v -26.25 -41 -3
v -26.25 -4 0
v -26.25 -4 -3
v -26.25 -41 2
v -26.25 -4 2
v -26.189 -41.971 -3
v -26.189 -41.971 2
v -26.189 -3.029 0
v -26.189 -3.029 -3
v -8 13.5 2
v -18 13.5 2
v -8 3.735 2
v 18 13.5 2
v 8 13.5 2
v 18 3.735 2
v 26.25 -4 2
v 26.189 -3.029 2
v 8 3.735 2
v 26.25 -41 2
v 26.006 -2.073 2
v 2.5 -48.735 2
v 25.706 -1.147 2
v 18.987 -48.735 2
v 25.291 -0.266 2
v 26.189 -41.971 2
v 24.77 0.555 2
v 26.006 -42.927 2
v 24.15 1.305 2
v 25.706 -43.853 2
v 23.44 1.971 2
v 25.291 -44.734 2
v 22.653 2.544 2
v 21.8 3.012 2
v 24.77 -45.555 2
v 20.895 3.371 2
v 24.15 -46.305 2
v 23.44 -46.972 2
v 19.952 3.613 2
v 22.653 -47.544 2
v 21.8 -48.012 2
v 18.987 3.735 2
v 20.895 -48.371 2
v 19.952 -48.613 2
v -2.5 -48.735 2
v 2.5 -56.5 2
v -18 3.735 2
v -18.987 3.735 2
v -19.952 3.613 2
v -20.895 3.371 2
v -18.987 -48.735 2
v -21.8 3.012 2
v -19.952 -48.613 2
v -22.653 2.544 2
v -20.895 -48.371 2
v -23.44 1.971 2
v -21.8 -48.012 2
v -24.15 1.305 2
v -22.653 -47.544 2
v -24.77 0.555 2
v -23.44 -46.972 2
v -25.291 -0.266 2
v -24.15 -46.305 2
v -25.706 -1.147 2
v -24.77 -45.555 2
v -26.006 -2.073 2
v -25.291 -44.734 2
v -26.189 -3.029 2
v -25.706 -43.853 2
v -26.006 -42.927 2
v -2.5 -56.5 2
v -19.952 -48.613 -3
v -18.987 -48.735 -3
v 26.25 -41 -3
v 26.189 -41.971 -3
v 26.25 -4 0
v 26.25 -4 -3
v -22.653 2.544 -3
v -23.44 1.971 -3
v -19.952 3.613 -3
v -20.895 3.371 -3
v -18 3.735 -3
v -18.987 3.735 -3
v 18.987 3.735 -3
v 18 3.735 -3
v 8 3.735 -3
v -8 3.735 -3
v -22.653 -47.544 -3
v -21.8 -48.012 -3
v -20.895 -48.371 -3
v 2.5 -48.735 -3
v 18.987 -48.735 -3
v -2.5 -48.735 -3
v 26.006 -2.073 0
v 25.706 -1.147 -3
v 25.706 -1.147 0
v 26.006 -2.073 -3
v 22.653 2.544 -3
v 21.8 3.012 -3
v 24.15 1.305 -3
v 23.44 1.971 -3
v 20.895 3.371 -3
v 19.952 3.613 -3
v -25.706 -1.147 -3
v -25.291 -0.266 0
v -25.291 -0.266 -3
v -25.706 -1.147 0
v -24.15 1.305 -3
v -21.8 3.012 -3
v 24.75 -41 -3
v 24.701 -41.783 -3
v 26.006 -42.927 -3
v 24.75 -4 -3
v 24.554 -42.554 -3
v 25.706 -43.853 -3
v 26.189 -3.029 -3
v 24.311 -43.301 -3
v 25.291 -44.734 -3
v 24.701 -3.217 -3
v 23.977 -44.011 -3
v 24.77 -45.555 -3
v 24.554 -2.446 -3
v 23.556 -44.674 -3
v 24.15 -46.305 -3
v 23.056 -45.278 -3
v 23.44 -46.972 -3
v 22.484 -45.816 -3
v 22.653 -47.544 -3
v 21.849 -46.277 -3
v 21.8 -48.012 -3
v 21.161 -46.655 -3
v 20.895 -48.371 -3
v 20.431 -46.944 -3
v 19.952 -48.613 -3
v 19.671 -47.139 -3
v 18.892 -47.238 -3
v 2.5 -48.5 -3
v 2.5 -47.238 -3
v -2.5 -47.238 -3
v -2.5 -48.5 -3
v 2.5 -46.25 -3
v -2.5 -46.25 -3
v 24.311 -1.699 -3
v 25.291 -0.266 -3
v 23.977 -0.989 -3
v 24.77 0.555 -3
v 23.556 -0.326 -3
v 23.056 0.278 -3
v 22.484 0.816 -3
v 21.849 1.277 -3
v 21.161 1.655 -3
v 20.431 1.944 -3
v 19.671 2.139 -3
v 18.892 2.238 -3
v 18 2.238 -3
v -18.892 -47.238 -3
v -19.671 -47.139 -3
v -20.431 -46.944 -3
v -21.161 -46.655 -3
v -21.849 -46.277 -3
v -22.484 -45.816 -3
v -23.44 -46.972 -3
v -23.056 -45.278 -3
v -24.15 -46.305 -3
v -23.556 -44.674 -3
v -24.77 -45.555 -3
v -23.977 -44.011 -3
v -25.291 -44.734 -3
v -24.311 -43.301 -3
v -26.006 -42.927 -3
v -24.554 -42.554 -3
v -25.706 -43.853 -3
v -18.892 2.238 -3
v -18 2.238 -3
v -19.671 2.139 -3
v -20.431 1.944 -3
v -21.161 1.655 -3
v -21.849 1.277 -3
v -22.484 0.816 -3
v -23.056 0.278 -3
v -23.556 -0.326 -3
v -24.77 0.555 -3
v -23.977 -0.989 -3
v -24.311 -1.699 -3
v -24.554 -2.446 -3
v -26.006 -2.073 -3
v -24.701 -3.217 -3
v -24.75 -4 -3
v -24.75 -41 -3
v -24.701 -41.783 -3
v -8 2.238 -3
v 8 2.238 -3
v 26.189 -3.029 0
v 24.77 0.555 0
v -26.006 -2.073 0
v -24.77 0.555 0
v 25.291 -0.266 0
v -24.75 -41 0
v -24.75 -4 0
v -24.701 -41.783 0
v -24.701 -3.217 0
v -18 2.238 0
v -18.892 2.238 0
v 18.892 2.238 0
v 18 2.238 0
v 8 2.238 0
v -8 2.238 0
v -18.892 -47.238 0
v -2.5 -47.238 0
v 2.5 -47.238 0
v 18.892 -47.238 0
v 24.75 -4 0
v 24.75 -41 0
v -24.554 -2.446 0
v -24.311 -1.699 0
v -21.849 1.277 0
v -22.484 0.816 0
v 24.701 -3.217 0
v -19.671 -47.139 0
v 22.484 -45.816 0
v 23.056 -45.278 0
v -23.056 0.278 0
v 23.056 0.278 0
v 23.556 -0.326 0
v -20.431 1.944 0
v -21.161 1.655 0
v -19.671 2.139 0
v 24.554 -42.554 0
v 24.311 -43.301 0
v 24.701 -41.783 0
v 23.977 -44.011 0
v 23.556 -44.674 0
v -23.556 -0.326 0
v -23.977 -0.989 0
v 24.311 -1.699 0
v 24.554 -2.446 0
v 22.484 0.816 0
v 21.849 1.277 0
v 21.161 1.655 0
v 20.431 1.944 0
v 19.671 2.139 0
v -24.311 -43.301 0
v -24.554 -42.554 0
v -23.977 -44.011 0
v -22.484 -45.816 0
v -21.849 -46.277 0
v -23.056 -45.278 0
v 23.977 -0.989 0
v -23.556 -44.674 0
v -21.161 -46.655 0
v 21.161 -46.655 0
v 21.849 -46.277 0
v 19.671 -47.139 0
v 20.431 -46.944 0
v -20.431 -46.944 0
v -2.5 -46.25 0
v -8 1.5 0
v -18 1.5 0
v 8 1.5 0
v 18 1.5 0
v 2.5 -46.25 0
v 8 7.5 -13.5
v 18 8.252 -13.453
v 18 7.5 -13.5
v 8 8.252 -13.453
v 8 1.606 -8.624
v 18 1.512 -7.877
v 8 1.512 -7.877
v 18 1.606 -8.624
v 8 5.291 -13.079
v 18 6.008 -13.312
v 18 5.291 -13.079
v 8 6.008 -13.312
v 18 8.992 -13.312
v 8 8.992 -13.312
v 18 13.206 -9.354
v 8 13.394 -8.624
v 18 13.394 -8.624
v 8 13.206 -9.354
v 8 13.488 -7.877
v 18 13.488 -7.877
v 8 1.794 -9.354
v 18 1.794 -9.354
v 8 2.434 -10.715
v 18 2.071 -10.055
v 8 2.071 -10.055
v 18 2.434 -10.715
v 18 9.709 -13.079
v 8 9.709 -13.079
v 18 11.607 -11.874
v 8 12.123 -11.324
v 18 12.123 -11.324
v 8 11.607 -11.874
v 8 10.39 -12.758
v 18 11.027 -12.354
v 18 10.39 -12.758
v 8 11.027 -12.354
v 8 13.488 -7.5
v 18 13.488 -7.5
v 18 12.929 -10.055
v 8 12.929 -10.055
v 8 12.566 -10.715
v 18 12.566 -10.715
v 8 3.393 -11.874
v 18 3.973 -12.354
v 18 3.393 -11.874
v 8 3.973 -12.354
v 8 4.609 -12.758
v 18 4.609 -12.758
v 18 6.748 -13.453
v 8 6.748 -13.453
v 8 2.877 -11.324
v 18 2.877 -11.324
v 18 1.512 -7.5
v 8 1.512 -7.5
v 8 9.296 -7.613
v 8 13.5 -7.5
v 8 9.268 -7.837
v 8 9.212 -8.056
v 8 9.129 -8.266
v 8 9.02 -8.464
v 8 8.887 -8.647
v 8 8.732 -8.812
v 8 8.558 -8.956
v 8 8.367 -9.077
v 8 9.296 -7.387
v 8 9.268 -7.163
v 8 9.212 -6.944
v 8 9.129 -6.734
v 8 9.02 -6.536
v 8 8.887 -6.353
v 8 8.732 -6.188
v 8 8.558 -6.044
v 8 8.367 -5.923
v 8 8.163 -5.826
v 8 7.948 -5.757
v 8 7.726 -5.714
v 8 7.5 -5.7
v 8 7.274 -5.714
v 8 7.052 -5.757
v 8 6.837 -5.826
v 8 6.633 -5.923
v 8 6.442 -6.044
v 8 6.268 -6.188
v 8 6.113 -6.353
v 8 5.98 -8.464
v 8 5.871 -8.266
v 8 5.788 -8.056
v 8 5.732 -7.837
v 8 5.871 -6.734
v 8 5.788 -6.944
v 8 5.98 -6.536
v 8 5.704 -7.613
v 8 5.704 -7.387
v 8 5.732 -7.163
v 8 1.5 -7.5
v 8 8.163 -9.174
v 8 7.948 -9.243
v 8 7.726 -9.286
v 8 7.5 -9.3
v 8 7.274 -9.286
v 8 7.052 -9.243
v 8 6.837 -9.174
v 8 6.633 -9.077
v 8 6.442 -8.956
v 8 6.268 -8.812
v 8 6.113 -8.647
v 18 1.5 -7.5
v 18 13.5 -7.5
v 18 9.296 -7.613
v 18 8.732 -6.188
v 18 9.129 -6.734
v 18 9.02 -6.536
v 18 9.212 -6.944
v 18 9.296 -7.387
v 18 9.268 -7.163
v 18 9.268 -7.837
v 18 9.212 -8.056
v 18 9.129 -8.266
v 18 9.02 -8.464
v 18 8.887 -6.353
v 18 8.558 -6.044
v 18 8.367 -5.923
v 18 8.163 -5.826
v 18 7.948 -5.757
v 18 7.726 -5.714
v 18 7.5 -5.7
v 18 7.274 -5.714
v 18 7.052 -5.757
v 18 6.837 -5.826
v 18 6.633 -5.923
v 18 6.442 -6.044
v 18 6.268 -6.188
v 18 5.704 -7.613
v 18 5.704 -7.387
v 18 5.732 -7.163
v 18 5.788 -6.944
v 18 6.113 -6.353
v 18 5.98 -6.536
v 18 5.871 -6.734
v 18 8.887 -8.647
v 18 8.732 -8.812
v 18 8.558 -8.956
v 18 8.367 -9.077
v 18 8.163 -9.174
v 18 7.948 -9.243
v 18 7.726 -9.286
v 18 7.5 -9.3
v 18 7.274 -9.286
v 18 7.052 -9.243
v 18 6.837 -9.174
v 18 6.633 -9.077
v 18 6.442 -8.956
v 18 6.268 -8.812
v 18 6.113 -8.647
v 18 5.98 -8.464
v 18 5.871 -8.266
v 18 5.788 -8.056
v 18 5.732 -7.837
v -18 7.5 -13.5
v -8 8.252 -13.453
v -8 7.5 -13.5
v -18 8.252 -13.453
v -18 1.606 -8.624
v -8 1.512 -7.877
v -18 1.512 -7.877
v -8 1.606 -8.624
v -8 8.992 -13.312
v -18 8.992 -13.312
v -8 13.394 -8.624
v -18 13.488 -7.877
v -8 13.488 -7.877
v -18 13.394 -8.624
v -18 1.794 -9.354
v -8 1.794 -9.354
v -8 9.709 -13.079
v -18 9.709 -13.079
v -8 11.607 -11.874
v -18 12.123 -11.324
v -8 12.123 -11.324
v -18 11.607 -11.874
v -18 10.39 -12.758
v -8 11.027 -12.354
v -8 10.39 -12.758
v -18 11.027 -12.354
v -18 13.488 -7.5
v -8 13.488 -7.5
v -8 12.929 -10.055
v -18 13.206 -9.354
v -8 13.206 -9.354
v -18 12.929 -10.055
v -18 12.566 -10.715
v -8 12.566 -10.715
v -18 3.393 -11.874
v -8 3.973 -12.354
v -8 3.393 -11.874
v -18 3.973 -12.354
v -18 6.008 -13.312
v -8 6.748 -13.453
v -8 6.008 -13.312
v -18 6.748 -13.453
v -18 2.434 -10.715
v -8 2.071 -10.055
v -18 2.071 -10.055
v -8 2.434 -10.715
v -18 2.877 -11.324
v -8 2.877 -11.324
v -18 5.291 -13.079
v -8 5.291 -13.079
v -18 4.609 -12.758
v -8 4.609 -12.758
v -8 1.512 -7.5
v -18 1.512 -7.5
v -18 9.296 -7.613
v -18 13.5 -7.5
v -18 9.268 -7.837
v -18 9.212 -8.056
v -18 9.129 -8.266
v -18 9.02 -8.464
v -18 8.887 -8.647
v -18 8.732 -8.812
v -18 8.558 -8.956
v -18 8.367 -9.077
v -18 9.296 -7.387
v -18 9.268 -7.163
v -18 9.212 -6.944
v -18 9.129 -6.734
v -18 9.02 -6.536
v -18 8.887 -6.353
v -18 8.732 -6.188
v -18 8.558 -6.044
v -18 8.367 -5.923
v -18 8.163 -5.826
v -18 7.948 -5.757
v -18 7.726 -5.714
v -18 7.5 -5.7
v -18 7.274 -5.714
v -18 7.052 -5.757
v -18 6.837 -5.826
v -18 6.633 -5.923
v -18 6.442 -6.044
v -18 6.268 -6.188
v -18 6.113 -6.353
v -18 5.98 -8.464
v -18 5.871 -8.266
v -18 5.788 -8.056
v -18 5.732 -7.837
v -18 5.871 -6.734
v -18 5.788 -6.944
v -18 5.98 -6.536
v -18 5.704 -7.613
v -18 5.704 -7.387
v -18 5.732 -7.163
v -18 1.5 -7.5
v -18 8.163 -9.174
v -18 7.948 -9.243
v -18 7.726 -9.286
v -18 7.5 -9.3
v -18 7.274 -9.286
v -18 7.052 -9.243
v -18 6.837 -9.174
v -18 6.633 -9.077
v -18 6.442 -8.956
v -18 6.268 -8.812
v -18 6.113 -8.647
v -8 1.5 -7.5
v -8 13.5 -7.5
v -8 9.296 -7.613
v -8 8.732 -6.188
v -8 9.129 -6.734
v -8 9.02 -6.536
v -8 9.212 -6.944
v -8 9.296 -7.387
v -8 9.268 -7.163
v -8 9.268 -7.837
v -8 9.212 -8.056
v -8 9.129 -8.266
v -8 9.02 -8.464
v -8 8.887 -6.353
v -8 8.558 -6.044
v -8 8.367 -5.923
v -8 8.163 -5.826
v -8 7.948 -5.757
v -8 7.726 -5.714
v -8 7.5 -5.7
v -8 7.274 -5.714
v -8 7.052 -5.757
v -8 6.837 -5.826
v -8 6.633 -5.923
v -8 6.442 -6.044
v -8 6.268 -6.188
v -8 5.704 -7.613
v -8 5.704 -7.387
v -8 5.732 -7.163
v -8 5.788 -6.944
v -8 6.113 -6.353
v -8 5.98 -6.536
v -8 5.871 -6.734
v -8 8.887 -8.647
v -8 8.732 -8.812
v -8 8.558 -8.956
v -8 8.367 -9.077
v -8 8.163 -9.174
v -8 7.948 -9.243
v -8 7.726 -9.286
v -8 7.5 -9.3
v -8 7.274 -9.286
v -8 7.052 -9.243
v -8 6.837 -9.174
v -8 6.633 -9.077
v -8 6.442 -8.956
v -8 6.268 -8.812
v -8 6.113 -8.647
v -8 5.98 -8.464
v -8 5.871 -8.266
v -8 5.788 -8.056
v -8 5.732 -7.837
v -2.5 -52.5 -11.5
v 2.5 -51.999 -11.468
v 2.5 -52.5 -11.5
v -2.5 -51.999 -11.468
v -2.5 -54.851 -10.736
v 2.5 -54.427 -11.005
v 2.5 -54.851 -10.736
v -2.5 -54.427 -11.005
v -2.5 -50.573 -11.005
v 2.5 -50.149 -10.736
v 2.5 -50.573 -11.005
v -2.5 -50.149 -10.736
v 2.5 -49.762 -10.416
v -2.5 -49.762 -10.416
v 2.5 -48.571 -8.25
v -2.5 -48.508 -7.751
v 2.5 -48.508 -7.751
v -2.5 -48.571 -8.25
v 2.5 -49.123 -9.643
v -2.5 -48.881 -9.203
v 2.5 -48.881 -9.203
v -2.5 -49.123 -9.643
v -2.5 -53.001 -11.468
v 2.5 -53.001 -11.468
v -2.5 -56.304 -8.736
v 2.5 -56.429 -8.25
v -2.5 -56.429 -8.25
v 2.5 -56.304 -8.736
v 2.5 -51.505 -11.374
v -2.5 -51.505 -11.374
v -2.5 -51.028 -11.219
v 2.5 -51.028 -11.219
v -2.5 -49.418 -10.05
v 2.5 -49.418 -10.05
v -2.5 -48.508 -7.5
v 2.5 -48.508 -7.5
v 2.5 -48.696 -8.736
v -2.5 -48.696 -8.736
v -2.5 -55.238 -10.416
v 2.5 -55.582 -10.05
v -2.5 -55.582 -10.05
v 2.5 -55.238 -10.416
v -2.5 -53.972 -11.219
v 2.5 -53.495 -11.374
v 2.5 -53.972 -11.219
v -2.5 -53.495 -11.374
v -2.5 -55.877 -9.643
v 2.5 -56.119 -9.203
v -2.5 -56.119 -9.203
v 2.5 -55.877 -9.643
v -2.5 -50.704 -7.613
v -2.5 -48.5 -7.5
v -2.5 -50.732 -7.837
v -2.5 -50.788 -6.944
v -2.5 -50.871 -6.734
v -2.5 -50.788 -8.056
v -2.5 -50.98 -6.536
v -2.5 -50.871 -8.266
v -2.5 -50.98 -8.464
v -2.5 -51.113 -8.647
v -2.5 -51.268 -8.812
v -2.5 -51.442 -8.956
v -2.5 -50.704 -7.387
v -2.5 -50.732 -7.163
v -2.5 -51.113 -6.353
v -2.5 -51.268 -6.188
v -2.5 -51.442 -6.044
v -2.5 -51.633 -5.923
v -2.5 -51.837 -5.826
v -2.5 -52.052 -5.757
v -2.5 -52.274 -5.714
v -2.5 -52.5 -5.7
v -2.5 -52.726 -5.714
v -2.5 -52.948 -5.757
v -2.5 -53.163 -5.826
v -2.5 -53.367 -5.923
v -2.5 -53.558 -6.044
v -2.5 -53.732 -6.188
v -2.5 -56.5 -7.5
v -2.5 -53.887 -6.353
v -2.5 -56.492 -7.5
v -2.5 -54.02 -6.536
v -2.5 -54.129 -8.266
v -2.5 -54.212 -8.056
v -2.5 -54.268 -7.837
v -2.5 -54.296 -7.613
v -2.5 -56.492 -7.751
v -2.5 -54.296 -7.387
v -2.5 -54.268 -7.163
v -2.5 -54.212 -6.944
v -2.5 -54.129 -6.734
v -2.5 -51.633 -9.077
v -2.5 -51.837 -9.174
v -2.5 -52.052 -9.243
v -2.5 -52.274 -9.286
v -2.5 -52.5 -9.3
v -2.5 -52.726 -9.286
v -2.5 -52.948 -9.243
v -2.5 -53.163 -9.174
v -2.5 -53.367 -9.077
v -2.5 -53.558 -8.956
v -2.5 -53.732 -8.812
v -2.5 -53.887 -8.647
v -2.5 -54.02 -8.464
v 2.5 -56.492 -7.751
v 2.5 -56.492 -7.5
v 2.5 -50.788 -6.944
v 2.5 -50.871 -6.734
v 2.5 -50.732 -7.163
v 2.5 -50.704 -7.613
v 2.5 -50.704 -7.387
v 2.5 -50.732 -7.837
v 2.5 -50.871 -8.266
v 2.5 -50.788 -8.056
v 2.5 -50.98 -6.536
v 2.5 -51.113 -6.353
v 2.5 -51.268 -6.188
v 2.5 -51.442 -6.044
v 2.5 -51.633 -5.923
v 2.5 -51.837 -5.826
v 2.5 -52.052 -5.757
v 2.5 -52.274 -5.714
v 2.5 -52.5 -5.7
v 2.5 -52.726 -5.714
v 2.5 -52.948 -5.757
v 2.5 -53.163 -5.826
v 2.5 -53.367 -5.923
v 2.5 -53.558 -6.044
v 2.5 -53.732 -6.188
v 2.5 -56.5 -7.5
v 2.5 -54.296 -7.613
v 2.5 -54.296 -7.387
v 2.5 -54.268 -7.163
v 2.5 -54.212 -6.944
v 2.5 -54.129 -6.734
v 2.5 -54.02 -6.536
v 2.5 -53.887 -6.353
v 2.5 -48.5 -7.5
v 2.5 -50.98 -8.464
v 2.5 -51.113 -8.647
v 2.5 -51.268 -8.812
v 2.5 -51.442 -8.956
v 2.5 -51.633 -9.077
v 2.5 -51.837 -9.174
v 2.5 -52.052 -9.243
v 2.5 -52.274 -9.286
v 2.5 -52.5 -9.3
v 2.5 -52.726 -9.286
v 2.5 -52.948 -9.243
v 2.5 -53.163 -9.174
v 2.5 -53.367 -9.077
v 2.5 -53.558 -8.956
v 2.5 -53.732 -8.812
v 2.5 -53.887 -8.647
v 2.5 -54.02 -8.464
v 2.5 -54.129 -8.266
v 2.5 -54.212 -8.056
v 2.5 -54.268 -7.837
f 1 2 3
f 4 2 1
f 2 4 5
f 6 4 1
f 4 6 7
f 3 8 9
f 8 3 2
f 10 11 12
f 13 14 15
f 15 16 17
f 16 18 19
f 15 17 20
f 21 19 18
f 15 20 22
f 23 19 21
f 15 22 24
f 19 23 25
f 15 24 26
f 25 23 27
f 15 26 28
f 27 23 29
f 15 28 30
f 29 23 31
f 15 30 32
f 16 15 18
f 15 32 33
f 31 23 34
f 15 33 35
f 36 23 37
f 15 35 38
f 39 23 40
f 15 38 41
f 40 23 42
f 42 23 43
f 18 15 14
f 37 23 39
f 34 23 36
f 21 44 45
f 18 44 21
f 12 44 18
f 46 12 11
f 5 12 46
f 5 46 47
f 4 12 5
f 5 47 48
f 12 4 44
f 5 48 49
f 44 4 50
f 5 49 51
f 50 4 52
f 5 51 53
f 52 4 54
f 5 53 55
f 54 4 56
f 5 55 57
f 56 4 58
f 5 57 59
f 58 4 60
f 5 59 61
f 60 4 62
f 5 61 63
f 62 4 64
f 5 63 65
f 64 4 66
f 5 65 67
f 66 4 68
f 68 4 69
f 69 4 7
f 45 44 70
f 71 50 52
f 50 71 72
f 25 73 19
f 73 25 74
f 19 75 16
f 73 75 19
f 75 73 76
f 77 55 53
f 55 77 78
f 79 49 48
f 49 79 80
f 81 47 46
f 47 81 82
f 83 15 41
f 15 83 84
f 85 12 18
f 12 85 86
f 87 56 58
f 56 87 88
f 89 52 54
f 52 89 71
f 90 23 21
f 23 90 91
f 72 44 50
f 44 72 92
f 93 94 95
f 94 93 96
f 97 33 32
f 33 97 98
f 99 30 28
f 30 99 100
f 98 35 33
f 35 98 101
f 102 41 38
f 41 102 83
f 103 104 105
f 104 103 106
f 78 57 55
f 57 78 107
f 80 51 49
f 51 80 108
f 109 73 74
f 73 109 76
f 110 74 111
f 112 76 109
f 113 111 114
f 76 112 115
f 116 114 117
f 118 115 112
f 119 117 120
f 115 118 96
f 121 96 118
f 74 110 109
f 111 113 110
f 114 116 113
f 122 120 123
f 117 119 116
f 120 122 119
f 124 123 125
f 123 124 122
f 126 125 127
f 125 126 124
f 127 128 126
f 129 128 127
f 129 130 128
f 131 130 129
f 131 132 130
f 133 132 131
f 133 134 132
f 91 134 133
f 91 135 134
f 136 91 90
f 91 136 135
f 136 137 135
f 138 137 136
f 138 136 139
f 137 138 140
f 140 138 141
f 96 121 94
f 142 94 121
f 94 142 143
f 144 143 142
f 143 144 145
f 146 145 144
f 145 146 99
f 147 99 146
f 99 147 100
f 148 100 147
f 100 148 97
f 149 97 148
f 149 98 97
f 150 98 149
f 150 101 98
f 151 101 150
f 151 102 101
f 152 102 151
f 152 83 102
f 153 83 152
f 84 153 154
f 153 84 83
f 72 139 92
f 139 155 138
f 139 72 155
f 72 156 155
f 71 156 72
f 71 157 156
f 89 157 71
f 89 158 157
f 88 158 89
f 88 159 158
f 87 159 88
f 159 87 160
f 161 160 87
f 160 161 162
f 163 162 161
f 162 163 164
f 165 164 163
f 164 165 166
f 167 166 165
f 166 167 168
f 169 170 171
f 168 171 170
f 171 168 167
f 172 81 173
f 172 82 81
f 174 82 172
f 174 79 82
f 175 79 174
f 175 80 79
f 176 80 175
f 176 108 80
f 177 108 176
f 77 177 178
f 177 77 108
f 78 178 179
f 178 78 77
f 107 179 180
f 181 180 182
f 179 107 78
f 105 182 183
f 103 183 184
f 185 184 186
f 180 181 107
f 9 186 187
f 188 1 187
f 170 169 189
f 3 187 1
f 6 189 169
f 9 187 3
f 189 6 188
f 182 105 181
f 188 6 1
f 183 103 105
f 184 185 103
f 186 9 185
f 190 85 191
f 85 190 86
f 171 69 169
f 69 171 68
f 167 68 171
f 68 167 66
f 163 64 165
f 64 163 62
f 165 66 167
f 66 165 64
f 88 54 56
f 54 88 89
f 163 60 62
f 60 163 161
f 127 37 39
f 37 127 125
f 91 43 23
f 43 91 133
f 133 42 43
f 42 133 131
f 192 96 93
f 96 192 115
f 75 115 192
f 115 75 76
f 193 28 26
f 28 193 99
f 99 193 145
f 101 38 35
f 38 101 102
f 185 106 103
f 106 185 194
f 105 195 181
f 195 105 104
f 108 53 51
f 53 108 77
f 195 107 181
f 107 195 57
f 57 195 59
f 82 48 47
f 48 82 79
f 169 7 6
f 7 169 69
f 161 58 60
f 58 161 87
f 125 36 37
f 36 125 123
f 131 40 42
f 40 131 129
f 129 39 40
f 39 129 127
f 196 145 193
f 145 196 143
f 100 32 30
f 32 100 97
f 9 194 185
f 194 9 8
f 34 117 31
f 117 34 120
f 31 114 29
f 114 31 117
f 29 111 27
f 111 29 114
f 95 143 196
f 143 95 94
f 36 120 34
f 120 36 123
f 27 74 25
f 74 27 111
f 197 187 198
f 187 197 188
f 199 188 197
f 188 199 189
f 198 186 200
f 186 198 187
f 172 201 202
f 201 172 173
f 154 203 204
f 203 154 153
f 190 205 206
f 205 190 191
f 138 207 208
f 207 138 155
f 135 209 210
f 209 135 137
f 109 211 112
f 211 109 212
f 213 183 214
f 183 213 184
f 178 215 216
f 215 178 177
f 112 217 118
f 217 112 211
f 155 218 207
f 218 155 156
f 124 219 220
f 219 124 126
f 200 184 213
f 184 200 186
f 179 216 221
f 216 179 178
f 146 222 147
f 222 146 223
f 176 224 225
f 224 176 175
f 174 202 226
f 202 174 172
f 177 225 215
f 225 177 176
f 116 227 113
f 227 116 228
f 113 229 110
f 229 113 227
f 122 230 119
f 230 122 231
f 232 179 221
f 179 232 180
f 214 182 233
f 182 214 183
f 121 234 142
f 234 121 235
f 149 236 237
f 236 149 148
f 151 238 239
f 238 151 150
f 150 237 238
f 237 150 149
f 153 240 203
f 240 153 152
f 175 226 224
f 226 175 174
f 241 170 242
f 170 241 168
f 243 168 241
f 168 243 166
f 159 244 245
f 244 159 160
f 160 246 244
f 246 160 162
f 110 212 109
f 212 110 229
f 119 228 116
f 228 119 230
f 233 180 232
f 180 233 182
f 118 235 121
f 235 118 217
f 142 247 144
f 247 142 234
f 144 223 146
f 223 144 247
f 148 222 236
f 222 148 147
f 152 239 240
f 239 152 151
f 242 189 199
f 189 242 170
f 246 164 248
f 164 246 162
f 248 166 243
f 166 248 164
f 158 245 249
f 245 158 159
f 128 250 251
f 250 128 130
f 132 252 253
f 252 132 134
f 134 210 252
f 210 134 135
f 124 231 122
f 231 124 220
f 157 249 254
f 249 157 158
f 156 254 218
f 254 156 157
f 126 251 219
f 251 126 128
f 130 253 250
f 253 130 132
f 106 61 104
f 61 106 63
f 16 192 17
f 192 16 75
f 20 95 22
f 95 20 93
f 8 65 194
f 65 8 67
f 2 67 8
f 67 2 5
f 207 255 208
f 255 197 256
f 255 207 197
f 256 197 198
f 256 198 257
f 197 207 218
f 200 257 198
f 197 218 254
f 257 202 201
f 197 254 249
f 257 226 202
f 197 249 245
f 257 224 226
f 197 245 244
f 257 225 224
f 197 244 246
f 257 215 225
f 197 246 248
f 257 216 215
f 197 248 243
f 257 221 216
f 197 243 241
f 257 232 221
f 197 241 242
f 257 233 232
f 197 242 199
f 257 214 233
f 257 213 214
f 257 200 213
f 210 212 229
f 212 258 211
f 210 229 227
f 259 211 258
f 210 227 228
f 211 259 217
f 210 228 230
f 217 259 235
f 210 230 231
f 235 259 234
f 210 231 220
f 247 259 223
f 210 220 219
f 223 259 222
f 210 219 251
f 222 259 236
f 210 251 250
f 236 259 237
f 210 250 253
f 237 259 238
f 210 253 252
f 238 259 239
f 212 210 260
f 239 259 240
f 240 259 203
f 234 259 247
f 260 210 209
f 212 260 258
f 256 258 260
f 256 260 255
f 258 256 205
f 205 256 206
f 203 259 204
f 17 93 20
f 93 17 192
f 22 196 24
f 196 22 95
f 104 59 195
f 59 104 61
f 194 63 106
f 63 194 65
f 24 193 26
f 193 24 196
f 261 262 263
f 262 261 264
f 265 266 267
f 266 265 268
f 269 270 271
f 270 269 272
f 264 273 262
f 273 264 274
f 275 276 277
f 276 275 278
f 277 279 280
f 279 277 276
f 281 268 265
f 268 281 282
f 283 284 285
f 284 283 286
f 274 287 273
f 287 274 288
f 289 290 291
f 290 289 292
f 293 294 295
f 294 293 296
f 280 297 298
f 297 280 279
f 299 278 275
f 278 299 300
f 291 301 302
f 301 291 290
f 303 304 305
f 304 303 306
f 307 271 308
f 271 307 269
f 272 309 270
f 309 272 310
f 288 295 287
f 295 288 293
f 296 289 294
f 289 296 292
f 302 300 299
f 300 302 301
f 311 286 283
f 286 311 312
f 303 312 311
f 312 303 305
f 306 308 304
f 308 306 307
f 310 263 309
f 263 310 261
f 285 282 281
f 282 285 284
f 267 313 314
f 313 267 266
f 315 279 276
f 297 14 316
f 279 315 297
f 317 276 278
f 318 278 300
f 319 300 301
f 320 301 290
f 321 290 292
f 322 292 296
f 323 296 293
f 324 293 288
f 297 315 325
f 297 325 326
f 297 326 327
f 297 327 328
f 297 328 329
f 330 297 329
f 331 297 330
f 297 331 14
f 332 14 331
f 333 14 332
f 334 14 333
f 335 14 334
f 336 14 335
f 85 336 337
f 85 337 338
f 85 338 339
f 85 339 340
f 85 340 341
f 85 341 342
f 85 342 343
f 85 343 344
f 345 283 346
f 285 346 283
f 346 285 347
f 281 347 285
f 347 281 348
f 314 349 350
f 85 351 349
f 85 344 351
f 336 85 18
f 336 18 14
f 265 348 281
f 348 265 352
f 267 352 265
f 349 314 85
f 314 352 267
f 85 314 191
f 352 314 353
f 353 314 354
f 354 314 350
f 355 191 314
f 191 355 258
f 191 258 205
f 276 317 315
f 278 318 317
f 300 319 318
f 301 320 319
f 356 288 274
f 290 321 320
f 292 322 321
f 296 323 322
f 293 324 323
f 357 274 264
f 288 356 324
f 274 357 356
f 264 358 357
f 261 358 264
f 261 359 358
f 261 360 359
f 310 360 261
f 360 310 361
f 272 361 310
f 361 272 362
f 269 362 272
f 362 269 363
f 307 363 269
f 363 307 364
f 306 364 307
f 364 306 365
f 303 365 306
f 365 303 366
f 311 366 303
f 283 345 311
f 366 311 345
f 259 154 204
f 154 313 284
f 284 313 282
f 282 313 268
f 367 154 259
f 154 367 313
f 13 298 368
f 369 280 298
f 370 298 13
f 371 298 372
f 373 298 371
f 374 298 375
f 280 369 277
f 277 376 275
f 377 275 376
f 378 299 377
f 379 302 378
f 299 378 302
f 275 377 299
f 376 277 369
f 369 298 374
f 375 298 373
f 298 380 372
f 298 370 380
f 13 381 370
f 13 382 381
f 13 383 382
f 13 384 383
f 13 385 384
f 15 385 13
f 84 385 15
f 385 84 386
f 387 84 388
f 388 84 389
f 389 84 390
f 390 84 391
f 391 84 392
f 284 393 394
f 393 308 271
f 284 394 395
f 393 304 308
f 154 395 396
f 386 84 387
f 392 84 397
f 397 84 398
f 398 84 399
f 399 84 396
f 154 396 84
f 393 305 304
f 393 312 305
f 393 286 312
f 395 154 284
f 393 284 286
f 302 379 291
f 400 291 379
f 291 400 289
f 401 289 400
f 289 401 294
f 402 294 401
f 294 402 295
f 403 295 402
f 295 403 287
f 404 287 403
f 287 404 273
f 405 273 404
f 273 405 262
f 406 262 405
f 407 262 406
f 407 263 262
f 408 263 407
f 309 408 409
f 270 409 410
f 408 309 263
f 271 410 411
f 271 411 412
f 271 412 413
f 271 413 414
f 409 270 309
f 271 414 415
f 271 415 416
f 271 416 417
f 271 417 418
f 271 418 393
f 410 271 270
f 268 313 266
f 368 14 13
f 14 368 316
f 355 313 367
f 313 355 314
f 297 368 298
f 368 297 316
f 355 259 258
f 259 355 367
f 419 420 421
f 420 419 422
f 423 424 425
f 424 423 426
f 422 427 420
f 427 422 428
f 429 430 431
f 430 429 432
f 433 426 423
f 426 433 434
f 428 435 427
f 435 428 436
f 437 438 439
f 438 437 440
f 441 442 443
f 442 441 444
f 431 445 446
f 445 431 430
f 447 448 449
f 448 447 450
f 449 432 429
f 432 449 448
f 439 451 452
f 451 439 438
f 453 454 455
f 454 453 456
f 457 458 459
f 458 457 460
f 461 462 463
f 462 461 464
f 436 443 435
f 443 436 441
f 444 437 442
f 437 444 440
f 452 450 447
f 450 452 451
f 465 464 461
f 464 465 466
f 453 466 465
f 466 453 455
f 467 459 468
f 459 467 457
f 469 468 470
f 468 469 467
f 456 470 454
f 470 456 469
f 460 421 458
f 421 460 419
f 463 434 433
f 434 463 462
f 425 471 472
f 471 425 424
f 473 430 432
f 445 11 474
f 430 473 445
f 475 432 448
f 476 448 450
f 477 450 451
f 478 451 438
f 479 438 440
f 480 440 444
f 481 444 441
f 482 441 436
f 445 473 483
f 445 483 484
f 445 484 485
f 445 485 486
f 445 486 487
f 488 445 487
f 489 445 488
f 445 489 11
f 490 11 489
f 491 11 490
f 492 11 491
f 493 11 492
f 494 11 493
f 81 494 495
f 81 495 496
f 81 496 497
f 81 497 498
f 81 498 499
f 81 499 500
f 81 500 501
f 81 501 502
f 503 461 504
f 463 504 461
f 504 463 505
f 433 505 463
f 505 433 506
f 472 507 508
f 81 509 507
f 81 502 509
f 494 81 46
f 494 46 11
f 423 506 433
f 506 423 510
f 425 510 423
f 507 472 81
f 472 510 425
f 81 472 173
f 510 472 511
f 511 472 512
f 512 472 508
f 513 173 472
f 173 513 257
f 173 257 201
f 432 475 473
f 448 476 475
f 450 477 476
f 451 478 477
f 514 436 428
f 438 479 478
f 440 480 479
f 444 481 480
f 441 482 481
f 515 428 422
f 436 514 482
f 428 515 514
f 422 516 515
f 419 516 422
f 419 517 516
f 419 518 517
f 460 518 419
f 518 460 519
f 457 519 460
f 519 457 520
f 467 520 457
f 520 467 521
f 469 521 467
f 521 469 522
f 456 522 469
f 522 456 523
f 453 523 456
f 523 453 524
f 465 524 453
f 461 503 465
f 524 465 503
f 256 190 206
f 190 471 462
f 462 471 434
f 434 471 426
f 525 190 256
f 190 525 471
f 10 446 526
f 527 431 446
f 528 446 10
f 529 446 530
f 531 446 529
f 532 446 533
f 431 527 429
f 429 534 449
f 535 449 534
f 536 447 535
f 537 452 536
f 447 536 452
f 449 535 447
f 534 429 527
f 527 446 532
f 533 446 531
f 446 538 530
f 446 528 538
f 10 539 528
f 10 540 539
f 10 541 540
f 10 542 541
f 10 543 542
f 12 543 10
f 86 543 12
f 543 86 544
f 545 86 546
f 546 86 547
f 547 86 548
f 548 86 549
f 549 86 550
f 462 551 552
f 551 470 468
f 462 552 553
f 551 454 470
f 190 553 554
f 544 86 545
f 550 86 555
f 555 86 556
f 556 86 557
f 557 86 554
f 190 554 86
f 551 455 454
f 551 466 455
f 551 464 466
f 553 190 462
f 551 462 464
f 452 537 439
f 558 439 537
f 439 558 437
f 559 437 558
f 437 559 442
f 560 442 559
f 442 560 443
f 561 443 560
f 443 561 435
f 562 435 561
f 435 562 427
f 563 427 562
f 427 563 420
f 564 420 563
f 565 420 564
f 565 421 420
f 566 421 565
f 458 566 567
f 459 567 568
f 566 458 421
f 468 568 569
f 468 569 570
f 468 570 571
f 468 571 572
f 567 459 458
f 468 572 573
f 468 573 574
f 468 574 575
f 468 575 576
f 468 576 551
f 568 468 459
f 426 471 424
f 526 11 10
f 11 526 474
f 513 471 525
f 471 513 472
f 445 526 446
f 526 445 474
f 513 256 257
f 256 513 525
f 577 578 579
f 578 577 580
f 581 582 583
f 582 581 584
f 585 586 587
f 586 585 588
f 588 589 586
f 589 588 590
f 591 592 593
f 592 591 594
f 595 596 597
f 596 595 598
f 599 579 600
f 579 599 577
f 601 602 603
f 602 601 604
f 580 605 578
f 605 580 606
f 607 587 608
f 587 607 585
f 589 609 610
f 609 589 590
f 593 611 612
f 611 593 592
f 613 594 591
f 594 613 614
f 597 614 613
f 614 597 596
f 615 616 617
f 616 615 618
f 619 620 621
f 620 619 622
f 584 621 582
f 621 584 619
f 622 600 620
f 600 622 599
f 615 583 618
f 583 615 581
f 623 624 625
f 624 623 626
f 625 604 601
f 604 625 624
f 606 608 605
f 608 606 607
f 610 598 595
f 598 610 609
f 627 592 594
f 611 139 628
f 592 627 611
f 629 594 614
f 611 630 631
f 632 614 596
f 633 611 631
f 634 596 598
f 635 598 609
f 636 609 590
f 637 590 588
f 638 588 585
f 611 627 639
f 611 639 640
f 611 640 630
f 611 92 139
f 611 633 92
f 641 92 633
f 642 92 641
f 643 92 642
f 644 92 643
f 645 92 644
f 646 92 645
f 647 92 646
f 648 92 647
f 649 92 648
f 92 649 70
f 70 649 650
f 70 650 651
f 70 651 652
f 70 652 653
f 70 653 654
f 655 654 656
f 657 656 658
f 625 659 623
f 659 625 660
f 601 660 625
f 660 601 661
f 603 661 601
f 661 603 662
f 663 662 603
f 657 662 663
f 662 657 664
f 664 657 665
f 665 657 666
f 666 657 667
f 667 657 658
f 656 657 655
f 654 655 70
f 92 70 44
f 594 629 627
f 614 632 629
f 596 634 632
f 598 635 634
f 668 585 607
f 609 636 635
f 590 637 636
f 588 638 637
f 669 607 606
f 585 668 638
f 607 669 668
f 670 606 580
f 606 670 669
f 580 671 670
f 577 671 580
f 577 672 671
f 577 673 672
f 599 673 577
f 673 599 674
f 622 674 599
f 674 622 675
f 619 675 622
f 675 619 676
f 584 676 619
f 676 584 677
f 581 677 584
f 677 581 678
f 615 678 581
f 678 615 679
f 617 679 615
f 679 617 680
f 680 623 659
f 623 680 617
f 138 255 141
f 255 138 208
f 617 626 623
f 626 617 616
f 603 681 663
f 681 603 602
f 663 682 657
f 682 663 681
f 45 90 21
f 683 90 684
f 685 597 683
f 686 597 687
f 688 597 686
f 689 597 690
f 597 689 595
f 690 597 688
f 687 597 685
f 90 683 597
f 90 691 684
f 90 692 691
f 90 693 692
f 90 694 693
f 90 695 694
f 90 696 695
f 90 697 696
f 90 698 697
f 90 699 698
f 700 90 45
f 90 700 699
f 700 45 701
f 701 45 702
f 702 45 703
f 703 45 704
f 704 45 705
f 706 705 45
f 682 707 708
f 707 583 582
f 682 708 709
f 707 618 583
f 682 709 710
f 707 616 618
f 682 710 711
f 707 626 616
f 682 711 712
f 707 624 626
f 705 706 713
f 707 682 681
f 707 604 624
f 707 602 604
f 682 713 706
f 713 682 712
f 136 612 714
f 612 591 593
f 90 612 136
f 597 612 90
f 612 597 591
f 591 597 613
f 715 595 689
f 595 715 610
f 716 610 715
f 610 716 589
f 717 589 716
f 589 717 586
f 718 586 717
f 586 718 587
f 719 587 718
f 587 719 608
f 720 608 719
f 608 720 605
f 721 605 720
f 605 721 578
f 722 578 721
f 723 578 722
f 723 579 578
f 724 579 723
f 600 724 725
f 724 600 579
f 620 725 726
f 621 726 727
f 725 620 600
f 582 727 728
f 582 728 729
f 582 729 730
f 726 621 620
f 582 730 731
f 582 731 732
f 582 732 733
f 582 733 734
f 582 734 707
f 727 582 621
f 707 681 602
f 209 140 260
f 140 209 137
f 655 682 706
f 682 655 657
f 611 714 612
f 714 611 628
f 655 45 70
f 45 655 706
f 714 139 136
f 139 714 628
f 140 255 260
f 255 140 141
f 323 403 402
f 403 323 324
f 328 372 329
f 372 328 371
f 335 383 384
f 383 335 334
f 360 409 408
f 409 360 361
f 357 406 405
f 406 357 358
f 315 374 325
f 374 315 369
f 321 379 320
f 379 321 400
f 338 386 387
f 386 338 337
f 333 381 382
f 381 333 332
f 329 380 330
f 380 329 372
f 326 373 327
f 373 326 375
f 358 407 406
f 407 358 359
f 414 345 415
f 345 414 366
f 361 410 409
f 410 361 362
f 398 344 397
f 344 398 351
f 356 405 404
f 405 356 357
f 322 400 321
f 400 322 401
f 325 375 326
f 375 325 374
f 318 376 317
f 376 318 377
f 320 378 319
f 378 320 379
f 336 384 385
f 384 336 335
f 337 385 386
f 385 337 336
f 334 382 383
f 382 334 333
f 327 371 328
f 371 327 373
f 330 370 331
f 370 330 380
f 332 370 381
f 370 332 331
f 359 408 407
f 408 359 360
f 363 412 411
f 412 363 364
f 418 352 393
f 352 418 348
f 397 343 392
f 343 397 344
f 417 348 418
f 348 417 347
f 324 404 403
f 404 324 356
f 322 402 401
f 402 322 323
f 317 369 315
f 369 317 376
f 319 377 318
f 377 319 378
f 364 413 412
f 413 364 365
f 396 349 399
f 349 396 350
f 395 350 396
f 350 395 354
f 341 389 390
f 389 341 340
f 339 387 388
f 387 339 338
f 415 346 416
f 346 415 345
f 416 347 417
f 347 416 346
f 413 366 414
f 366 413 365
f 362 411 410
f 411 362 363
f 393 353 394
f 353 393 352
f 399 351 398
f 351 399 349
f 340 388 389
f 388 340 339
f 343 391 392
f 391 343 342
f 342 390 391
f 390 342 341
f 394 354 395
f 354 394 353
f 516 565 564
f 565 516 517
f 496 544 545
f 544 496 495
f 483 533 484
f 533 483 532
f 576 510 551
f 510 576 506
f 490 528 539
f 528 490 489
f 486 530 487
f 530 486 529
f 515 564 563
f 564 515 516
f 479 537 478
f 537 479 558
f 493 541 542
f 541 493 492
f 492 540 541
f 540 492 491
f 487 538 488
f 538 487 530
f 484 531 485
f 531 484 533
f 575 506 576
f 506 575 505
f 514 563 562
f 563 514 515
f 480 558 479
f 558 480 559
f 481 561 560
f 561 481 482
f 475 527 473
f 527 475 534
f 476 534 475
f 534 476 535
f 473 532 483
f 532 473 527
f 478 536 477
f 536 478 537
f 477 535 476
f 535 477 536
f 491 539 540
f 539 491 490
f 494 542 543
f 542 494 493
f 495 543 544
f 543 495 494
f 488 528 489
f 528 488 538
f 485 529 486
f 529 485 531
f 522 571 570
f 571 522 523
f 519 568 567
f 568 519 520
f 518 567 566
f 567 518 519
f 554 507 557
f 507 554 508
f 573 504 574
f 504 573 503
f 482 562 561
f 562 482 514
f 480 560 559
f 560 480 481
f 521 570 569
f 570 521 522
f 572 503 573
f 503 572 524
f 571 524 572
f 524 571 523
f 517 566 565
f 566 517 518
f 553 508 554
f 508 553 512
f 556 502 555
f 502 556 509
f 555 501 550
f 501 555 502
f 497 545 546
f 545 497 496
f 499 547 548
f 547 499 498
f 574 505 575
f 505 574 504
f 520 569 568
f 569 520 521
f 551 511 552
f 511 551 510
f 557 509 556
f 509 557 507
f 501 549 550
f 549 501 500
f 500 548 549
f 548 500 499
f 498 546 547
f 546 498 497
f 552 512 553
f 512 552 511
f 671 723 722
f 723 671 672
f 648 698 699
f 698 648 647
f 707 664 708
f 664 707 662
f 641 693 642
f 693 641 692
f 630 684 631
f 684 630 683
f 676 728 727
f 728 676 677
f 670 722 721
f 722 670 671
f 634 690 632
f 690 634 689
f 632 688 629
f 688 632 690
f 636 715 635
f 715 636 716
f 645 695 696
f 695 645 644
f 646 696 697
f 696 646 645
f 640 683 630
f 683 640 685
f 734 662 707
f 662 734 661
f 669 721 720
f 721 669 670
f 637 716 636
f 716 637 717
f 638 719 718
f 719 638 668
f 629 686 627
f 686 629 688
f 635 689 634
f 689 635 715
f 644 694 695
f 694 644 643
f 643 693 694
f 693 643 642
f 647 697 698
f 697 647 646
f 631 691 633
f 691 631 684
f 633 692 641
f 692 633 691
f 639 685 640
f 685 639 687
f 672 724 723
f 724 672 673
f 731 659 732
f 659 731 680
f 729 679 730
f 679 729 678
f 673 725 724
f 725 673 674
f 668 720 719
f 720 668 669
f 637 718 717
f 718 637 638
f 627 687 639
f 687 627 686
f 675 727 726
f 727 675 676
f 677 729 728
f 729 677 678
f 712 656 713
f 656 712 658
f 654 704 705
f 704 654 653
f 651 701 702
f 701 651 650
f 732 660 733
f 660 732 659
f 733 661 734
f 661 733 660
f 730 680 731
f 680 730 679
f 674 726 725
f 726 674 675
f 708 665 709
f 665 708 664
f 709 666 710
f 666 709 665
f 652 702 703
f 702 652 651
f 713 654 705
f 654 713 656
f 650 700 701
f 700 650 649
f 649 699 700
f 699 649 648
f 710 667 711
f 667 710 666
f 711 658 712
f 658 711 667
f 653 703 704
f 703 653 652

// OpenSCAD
$fn = 50;


difference() {
	union() {
		translate(v = [0, -22.5000000000, -3]) {
			rotate(a = [0, 0, 0]) {
				difference() {
					union() {
						hull() {
							translate(v = [-18.5000000000, 18.5000000000, 0]) {
								cylinder(h = 5, r = 7.7500000000);
							}
							translate(v = [18.5000000000, 18.5000000000, 0]) {
								cylinder(h = 5, r = 7.7500000000);
							}
							translate(v = [-18.5000000000, -18.5000000000, 0]) {
								cylinder(h = 5, r = 7.7500000000);
							}
							translate(v = [18.5000000000, -18.5000000000, 0]) {
								cylinder(h = 5, r = 7.7500000000);
							}
						}
					}
					union() {
						hull() {
							translate(v = [-18.5000000000, 18.5000000000, 0]) {
								cylinder(h = 5, r = 6.2500000000);
							}
							translate(v = [18.5000000000, 18.5000000000, 0]) {
								cylinder(h = 5, r = 6.2500000000);
							}
							translate(v = [-18.5000000000, -18.5000000000, 0]) {
								cylinder(h = 5, r = 6.2500000000);
							}
							translate(v = [18.5000000000, -18.5000000000, 0]) {
								cylinder(h = 5, r = 6.2500000000);
							}
						}
					}
				}
			}
		}
		translate(v = [0, -22.5000000000, 0]) {
			hull() {
				translate(v = [-18.5000000000, 18.5000000000, 0]) {
					cylinder(h = 2, r = 7.7500000000);
				}
				translate(v = [18.5000000000, 18.5000000000, 0]) {
					cylinder(h = 2, r = 7.7500000000);
				}
				translate(v = [-18.5000000000, -18.5000000000, 0]) {
					cylinder(h = 2, r = 7.7500000000);
				}
				translate(v = [18.5000000000, -18.5000000000, 0]) {
					cylinder(h = 2, r = 7.7500000000);
				}
			}
		}
		translate(v = [8.0000000000, 7.5000000000, -7.5000000000]) {
			rotate(a = [0, 90, 0]) {
				cylinder(h = 10, r = 6.0000000000);
			}
		}
		translate(v = [8.0000000000, 1.5000000000, -7.5000000000]) {
			cube(size = [10, 12, 7.5000000000]);
		}
		translate(v = [8.0000000000, -15.0000000000, 0.0000000000]) {
			cube(size = [10, 28.5000000000, 2]);
		}
		translate(v = [-18.0000000000, 7.5000000000, -7.5000000000]) {
			rotate(a = [0, 90, 0]) {
				cylinder(h = 10, r = 6.0000000000);
			}
		}
		translate(v = [-18.0000000000, 1.5000000000, -7.5000000000]) {
			cube(size = [10, 12, 7.5000000000]);
		}
		translate(v = [-18.0000000000, -15.0000000000, 0.0000000000]) {
			cube(size = [10, 28.5000000000, 2]);
		}
		translate(v = [-2.5000000000, -52.5000000000, -7.5000000000]) {
			rotate(a = [0, 90, 0]) {
				cylinder(h = 5, r = 4.0000000000);
			}
		}
		translate(v = [-2.5000000000, -56.5000000000, -7.5000000000]) {
			cube(size = [5, 8, 7.5000000000]);
		}
		translate(v = [-2.5000000000, -56.5000000000, -3.0000000000]) {
			cube(size = [5, 10.2500000000, 5]);
		}
	}
	union() {
		translate(v = [8.0000000000, 7.5000000000, -7.5000000000]) {
			rotate(a = [0, 90, 0]) {
				cylinder(h = 10, r = 1.8000000000);
			}
		}
		translate(v = [-18.0000000000, 7.5000000000, -7.5000000000]) {
			rotate(a = [0, 90, 0]) {
				cylinder(h = 10, r = 1.8000000000);
			}
		}
		translate(v = [-5.0000000000, -52.5000000000, -7.5000000000]) {
			rotate(a = [0, 90, 0]) {
				cylinder(h = 10, r = 1.8000000000);
			}
		}
	}
}
